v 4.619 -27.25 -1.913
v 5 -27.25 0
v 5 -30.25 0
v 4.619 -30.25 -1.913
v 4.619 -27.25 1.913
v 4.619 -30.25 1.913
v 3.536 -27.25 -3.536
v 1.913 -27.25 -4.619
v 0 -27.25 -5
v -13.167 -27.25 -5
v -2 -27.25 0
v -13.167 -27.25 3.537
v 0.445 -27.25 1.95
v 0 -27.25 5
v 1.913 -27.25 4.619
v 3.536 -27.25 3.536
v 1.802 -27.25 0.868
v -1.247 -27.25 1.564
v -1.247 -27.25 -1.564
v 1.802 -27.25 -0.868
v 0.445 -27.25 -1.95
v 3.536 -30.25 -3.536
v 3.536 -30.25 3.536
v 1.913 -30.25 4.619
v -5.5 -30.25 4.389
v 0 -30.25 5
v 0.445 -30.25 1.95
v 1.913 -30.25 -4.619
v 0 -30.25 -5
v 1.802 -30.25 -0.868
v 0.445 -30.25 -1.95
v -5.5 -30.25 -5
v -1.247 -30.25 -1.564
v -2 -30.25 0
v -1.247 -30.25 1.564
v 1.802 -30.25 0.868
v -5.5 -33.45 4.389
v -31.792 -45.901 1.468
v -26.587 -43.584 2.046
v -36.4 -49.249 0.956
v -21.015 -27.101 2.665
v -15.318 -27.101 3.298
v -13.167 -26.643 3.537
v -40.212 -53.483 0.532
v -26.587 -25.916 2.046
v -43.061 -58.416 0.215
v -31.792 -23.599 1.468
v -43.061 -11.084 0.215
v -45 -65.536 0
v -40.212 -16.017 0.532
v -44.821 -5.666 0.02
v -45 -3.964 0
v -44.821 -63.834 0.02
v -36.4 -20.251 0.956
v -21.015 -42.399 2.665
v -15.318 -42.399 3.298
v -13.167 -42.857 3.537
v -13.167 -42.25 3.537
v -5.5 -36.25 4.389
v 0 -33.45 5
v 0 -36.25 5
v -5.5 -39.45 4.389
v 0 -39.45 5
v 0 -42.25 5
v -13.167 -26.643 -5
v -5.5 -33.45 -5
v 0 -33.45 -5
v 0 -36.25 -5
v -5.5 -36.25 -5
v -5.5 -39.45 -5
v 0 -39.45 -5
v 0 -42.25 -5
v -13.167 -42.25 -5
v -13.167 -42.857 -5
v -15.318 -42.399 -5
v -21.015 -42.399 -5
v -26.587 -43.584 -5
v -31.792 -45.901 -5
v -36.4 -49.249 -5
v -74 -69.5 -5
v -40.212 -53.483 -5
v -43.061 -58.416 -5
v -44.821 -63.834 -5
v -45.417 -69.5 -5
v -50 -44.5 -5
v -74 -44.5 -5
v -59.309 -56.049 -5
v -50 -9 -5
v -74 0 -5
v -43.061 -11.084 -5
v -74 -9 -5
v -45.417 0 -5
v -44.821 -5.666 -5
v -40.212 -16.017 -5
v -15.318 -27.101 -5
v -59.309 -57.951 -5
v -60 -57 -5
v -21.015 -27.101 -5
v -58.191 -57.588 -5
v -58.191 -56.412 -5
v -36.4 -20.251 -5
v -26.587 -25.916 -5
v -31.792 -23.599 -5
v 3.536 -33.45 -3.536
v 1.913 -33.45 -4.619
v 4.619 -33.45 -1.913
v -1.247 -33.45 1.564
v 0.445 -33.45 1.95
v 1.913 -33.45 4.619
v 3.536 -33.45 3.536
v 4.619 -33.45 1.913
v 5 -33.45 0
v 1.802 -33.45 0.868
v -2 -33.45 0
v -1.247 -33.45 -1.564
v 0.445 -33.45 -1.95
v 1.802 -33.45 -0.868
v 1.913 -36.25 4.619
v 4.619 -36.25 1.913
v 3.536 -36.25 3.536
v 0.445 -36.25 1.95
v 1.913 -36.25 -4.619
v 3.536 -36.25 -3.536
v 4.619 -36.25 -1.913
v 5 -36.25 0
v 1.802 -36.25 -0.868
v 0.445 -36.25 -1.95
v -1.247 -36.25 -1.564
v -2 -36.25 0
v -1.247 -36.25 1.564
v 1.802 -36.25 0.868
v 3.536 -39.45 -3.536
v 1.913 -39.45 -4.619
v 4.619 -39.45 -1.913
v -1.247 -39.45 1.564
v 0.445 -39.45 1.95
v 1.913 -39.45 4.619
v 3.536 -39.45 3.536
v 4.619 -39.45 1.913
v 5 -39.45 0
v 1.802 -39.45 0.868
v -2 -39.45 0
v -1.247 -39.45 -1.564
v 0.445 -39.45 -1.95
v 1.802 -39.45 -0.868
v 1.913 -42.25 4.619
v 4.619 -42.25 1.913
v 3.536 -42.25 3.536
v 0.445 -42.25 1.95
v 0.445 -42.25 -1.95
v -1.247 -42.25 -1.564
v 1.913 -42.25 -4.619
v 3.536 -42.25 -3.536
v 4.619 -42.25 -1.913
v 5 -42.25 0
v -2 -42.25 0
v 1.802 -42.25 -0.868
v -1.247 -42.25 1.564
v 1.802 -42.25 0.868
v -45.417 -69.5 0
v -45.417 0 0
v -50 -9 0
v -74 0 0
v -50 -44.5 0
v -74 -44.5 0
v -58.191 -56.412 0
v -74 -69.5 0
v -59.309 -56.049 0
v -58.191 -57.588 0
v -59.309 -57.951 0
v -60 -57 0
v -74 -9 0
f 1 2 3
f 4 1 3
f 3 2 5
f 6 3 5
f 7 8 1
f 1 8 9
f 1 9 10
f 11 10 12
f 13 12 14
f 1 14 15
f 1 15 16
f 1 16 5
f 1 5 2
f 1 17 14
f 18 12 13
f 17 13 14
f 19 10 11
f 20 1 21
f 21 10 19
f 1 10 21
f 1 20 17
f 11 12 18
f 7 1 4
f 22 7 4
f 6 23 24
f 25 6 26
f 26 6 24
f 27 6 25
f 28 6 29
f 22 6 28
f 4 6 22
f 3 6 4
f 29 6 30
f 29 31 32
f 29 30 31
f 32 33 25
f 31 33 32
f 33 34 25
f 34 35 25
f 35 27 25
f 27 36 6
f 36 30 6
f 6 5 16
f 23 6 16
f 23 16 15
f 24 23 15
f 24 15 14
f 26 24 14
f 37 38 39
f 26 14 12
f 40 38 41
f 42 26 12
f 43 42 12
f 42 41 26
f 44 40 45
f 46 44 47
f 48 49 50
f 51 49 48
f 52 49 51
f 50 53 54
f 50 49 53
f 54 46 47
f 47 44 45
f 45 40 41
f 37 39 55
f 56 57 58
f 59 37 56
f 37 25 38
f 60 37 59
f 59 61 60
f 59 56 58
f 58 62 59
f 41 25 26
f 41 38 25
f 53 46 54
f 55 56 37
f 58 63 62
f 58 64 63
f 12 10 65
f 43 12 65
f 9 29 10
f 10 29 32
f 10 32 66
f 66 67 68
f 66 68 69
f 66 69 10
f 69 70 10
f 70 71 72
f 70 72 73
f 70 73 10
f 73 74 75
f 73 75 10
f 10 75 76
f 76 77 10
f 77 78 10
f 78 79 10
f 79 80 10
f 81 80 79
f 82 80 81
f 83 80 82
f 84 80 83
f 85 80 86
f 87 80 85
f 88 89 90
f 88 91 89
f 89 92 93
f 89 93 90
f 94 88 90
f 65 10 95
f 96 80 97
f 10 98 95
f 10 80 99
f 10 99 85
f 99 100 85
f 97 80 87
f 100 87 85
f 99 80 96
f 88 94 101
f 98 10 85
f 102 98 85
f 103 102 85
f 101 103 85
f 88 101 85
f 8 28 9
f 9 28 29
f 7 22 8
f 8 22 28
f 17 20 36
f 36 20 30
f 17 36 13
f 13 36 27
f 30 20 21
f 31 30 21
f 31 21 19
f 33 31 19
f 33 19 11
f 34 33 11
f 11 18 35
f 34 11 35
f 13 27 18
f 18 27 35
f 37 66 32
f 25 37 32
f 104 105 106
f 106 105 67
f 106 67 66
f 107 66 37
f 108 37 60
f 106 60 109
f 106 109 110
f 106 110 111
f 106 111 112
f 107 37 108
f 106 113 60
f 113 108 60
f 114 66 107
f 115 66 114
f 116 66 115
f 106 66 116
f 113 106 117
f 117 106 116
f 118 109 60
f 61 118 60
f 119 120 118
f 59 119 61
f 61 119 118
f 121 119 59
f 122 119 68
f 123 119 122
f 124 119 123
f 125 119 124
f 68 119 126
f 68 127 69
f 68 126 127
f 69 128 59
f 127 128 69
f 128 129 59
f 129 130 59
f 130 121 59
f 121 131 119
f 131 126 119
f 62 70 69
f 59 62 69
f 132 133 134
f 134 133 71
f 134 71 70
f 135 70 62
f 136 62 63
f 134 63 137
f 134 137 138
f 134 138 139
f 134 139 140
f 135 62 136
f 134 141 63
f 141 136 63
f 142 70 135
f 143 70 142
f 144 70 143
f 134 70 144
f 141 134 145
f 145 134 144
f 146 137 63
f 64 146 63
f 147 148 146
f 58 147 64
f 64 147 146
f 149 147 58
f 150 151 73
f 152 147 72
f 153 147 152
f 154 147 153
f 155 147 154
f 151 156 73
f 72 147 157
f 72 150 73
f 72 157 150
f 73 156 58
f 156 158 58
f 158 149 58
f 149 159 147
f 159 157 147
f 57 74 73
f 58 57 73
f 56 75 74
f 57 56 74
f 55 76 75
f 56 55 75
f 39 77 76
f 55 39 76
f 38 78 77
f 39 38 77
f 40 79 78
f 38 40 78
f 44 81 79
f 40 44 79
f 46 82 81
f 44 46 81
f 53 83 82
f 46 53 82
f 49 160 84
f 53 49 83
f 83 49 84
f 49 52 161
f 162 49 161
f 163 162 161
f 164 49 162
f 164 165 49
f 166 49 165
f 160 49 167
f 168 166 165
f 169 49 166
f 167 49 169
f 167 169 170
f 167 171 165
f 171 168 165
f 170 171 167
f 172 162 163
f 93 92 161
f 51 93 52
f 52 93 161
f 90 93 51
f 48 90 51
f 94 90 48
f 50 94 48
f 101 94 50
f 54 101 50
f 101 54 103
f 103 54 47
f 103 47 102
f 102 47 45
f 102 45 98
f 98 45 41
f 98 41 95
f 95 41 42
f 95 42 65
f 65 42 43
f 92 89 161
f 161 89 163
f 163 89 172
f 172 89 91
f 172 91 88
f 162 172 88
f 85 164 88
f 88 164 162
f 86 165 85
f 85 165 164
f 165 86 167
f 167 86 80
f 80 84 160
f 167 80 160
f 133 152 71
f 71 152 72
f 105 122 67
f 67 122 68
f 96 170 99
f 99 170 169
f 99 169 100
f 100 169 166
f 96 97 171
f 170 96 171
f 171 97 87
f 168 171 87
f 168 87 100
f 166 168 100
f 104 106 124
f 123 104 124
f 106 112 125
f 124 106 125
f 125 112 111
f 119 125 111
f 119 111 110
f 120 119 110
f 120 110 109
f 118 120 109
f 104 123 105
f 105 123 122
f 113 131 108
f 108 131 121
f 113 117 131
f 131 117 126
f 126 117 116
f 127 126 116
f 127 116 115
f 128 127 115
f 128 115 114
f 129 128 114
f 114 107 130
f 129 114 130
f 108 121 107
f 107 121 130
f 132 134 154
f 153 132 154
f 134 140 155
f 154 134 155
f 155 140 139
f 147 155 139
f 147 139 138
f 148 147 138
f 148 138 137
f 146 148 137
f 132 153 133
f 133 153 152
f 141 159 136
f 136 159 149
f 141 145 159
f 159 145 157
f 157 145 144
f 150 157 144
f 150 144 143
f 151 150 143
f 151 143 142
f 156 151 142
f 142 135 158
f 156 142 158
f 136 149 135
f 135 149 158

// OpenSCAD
/*
 *   fan_holder.scad
 *   Creates a simple holder arm for a part fan on a greg's wade 
 *   extruder.
 *	
 *   Copyright (C) 2014  Mogue Carpenter
 *
 *    This program is free software: you can redistribute it and/or modify
 *    it under the terms of the GNU General Public License as published by
 *    the Free Software Foundation, either version 3 of the License, or
 *    (at your option) any later version.
 *
 *    This program is distributed in the hope that it will be useful,
 *    but WITHOUT ANY WARRANTY; without even the implied warranty of
 *    MERCHANTABILITY or FITNESS FOR A PARTICULAR PURPOSE.  See the
 *    GNU General Public License for more details.

 *    You should have received a copy of the GNU General Public License
 *    along with this programbvngn  If not, see <http://www.gnu.org/licenses/>.
*/

height = 5;
lenght = 45+28;
width = 69.5;

arm_width = 15;
arm_lenght = 45;

teeth_gaps = 3.2;
teeth_or = 5;
teeth_ir = 2;

notch_width = 35.5;
notch_lenght = 28;
notch_depth = 28;
notch_offset = 9;

screw_x = 59;
screw_y = lenght - 16;
screw_r = 1;

rotate ([90,180,0]) fan_arm();

module fan_arm(){
	difference(){
		arm_body();
		translate ([-teeth_or,-(teeth_or*3)/2,0])
		cube([(width-arm_width)/3,teeth_or*3,(width-arm_width)/2]);
		translate ([-teeth_or,-(teeth_or*3)/2,((width-arm_width)/2)+arm_width])
		cube([(width-arm_width)/3,teeth_or*3,(width-arm_width)/2]);

		translate([(width-arm_width)/3,0,0]) rotate([90,0,0]) 
			cylinder(h=teeth_or*3,r=(width-arm_width)/2,center=true);

		translate([(width-arm_width)/3,0,width]) rotate([90,0,0]) 
			cylinder(h=teeth_or*3,r=(width-arm_width)/2,center=true);	
		//teeth
		translate([0,0,((width/2)-(arm_width/2))+(teeth_gaps/2)+(arm_width*0.2)])
			cube([teeth_or*2.2,teeth_or*3,teeth_gaps], center = true);

		translate([0,0,((width/2)-(arm_width/2))+(teeth_gaps/2)+(arm_width*0.6)])
			cube([teeth_or*2.2,teeth_or*3,teeth_gaps], center = true);
		//notch
		translate([lenght+teeth_or-notch_depth,0,notch_offset])
		cube ([notch_depth,height+1,notch_width]);

		//screw hole
		translate([screw_x,0,screw_y]) rotate([90,0,0]) 
			cylinder(h=teeth_or*3,r=screw_r,center=true);	
	}


}
module arm_body(){
	linear_extrude(height =width )
	{
		difference(){
			hull(){
				circle (r= teeth_or );
				translate([arm_lenght/2,height/2])
					square([arm_lenght,height], center=true);
			}
			circle (r = teeth_ir );
		}
		translate([(lenght/2)+teeth_ir,height/2])
			square([lenght-teeth_ir,height], center=true);
	}
}
